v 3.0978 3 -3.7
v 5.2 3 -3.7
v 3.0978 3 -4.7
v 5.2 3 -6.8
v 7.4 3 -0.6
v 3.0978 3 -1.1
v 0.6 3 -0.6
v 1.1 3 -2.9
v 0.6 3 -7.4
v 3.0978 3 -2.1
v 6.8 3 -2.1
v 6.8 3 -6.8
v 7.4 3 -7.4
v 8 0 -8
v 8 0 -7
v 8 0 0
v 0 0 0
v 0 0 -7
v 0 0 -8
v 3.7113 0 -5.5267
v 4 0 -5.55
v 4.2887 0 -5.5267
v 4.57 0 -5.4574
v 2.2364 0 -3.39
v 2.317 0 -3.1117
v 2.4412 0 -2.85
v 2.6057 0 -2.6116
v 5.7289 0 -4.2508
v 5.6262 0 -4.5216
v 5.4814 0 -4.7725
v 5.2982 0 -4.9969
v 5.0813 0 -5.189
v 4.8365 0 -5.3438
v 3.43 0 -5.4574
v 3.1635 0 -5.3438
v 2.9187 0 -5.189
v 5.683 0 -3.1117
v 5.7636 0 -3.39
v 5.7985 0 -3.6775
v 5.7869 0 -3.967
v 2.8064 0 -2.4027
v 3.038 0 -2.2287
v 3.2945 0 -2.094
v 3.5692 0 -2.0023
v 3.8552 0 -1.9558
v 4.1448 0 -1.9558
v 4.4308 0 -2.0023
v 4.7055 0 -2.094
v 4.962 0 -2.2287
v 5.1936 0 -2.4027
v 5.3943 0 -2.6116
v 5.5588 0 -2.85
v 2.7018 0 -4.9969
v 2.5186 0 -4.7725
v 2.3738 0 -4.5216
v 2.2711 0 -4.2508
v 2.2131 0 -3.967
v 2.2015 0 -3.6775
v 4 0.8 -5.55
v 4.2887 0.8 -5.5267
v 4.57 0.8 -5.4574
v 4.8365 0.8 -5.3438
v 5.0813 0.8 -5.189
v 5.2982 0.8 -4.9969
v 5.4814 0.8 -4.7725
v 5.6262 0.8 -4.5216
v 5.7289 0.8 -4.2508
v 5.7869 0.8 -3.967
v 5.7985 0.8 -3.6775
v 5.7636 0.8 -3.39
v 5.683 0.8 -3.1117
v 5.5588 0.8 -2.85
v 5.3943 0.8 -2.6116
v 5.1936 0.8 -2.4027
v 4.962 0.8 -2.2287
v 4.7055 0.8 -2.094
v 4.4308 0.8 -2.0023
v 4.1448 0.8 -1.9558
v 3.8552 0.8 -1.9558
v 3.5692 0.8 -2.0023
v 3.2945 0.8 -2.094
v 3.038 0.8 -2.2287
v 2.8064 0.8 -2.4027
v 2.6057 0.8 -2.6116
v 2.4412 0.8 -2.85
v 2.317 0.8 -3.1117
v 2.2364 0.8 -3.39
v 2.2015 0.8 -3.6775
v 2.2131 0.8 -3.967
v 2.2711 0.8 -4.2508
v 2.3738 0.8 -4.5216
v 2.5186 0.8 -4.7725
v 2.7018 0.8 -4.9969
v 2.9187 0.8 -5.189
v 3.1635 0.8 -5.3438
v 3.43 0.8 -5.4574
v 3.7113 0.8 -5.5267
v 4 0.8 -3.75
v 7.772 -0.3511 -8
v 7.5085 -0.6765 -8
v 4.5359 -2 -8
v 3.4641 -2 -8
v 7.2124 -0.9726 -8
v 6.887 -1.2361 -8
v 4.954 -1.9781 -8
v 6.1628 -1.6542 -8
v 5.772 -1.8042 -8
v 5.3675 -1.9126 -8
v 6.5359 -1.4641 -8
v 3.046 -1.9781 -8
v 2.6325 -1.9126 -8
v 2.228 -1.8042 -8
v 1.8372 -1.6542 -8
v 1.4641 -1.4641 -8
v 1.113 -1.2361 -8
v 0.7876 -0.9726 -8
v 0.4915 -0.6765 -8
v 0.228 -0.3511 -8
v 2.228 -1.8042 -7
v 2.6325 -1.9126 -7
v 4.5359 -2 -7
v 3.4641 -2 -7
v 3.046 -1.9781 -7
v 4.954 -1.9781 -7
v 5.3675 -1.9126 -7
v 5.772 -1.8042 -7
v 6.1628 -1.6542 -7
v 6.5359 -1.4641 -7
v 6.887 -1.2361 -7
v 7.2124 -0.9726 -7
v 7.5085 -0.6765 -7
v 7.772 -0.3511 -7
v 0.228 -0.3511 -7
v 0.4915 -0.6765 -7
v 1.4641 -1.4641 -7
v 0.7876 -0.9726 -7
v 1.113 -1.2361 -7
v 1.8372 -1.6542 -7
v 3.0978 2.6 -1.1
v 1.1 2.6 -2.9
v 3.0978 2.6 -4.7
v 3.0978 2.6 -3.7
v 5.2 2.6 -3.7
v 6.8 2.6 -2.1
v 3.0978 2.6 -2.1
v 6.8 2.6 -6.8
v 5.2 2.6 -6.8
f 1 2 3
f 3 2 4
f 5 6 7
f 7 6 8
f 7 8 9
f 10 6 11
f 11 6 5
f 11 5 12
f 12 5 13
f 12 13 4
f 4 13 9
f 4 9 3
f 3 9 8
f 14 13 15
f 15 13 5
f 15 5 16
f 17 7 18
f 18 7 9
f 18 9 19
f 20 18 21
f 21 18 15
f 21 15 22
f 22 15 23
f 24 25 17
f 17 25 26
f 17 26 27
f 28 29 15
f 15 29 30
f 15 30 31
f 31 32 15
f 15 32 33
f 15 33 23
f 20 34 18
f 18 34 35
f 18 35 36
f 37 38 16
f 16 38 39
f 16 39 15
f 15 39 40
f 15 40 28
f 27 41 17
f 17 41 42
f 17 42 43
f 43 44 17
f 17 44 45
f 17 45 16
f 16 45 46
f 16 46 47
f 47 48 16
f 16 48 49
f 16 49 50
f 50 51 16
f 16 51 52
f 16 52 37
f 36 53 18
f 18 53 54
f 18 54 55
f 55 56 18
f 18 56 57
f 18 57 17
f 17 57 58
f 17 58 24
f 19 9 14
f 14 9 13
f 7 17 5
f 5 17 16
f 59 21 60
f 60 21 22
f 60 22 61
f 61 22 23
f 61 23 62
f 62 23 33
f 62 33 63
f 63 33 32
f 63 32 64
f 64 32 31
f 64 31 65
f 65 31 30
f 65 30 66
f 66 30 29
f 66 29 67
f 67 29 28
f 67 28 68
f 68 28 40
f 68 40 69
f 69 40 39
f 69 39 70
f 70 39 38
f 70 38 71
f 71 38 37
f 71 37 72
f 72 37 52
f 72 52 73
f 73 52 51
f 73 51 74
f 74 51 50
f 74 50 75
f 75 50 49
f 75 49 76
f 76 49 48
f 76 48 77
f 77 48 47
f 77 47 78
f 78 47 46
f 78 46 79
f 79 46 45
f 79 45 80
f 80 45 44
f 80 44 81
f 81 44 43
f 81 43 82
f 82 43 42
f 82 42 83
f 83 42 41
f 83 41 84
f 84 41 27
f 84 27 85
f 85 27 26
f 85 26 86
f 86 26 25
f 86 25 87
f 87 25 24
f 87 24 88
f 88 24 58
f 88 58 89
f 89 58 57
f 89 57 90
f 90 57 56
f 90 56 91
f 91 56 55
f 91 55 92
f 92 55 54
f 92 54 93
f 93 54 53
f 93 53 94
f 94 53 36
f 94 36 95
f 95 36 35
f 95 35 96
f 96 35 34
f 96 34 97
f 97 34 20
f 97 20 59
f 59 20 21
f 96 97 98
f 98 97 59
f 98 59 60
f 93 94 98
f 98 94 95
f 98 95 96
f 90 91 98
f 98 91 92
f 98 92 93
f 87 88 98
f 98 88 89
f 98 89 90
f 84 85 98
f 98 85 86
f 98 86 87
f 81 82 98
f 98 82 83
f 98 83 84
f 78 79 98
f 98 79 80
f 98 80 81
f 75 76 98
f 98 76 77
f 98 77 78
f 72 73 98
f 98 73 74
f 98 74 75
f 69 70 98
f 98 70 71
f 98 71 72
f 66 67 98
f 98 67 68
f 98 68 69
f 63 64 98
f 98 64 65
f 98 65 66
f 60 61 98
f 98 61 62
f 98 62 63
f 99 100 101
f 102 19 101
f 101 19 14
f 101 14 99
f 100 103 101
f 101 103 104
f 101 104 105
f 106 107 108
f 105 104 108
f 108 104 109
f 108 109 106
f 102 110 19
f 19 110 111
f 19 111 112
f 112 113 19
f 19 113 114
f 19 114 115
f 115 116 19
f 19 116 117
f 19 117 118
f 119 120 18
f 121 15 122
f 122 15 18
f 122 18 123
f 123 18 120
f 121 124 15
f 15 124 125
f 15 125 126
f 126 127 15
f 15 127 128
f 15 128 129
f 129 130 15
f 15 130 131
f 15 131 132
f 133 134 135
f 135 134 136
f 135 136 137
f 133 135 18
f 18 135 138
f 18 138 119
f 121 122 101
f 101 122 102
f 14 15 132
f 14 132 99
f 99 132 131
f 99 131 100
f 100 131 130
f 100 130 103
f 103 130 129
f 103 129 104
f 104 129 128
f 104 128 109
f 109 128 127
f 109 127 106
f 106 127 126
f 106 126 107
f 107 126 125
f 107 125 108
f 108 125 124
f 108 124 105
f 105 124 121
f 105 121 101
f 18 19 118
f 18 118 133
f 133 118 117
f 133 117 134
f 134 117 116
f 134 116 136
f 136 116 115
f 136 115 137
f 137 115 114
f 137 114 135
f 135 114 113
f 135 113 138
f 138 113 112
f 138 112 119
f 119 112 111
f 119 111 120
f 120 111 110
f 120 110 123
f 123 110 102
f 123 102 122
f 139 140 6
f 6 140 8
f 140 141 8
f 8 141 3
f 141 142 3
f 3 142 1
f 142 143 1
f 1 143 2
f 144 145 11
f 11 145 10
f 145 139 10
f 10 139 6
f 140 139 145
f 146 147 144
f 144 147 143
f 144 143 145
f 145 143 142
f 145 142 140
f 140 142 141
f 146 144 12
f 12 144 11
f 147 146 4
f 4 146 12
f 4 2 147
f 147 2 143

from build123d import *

# Parameters (mm, degrees)
SKETCH1_W               = 8
SKETCH1_H               = 8
BOSS_EXTRUDE1_DEPTH     = 3
CUT_EXTRUDE1_DEPTH      = 12.704699911
CUT_EXTRUDE1_DEPTH_BACK = 12.704699911
CUT_EXTRUDE2_DEPTH      = 11
SKETCH4_R               = 1.8
CUT_EXTRUDE3_DEPTH      = 0.8
SKETCH5_W               = 8
SKETCH5_H               = 1
BOSS_EXTRUDE2_DEPTH     = 2
FILLET1_R               = 4
SKETCH6_W               = 2.10217216
SKETCH6_H               = 1.6
CUT_EXTRUDE4_DEPTH      = 0.4


with BuildPart() as part:
    # Sketch1 → Boss-Extrude1 (new body)
    with BuildSketch(Plane(origin=(0, 0, 0), x_dir=(1, 0, 0), z_dir=(0, 1, 0))):
        with Locations((4, 4)):
            Rectangle(SKETCH1_W, SKETCH1_H)
    extrude(amount=BOSS_EXTRUDE1_DEPTH)

    # Sketch2 → Cut-Extrude1 (cut, two sides: drawn at the far end of the back side and taken through both)
    with BuildSketch(Plane.XY.offset(-CUT_EXTRUDE1_DEPTH_BACK)):
        Polygon((0, 0), (0.6, 3), (0, 3), align=None)
        Polygon((8, 0), (7.4, 3), (8, 3), align=None)
    extrude(amount=CUT_EXTRUDE1_DEPTH + CUT_EXTRUDE1_DEPTH_BACK, mode=Mode.SUBTRACT)

    # Sketch3 → Cut-Extrude2 (cut)
    with BuildSketch(Plane(origin=(0, 0, 0), x_dir=(0, 0, -1), z_dir=(1, 0, 0))):
        Polygon((0, 0), (0.6, 3), (0, 3), align=None)
        Polygon((8, 3), (7.4, 3), (8, 0), align=None)
    extrude(amount=CUT_EXTRUDE2_DEPTH, mode=Mode.SUBTRACT)

    # Sketch4 → Cut-Extrude3 (cut)
    with BuildSketch(Plane.XZ):
        with Locations(Location((4, -3.75, 0), (0, 0, 270))):
            Circle(SKETCH4_R)
    extrude(amount=-CUT_EXTRUDE3_DEPTH, mode=Mode.SUBTRACT)

    # Sketch5 → Boss-Extrude2 (add)
    with BuildSketch(Plane.XZ):
        with Locations((4, -7.5)):
            Rectangle(SKETCH5_W, SKETCH5_H)
    extrude(amount=BOSS_EXTRUDE2_DEPTH)

    # Fillet1
    # the kernel refuses this fillet: 4 mm, written as the material it takes off along each edge
    with BuildSketch(Plane(origin=(8, -2, -16.660254038), x_dir=(0, 1, 0), z_dir=(0, 0, 1)), Plane(origin=(0, -2, 1.660254038), x_dir=(0, 1, 0), z_dir=(0, 0, -1))) as fillet1_piece_1:
        with BuildLine():
            CenterArc((4, 3.464101615), FILLET1_R, 180, 60)
            Line((0, 3.464101615), (-0.08, 3.464101615))
            Line((-0.08, 3.464101615), (-0.08, 0))
            Line((-0.08, 0), (0, -0.08))
            ThreePointArc((0, -0.08), (1, -0.08), (1.96, -0.069282032))
            Line((1.96, -0.069282032), (2, 0))
        make_face()
    extrude(amount=18.320508076, mode=Mode.SUBTRACT)

    # Sketch6 → Cut-Extrude4 (cut)
    with BuildSketch(Plane(origin=(0, 3, 0), x_dir=(1, 0, 0), z_dir=(0, 1, 0))):
        Polygon((3.09782784, 2.1), (3.09782784, 3.7), (3.09782784, 4.7), (1.1, 2.9), (3.09782784, 1.1), align=None)
        with Locations((4.14891392, 2.9)):
            Rectangle(SKETCH6_W, SKETCH6_H)
        Polygon((5.2, 6.8), (5.2, 3.7), (5.2, 2.1), (6.8, 2.1), (6.8, 6.8), align=None)
    extrude(amount=-CUT_EXTRUDE4_DEPTH, mode=Mode.SUBTRACT)


solid = part.part
